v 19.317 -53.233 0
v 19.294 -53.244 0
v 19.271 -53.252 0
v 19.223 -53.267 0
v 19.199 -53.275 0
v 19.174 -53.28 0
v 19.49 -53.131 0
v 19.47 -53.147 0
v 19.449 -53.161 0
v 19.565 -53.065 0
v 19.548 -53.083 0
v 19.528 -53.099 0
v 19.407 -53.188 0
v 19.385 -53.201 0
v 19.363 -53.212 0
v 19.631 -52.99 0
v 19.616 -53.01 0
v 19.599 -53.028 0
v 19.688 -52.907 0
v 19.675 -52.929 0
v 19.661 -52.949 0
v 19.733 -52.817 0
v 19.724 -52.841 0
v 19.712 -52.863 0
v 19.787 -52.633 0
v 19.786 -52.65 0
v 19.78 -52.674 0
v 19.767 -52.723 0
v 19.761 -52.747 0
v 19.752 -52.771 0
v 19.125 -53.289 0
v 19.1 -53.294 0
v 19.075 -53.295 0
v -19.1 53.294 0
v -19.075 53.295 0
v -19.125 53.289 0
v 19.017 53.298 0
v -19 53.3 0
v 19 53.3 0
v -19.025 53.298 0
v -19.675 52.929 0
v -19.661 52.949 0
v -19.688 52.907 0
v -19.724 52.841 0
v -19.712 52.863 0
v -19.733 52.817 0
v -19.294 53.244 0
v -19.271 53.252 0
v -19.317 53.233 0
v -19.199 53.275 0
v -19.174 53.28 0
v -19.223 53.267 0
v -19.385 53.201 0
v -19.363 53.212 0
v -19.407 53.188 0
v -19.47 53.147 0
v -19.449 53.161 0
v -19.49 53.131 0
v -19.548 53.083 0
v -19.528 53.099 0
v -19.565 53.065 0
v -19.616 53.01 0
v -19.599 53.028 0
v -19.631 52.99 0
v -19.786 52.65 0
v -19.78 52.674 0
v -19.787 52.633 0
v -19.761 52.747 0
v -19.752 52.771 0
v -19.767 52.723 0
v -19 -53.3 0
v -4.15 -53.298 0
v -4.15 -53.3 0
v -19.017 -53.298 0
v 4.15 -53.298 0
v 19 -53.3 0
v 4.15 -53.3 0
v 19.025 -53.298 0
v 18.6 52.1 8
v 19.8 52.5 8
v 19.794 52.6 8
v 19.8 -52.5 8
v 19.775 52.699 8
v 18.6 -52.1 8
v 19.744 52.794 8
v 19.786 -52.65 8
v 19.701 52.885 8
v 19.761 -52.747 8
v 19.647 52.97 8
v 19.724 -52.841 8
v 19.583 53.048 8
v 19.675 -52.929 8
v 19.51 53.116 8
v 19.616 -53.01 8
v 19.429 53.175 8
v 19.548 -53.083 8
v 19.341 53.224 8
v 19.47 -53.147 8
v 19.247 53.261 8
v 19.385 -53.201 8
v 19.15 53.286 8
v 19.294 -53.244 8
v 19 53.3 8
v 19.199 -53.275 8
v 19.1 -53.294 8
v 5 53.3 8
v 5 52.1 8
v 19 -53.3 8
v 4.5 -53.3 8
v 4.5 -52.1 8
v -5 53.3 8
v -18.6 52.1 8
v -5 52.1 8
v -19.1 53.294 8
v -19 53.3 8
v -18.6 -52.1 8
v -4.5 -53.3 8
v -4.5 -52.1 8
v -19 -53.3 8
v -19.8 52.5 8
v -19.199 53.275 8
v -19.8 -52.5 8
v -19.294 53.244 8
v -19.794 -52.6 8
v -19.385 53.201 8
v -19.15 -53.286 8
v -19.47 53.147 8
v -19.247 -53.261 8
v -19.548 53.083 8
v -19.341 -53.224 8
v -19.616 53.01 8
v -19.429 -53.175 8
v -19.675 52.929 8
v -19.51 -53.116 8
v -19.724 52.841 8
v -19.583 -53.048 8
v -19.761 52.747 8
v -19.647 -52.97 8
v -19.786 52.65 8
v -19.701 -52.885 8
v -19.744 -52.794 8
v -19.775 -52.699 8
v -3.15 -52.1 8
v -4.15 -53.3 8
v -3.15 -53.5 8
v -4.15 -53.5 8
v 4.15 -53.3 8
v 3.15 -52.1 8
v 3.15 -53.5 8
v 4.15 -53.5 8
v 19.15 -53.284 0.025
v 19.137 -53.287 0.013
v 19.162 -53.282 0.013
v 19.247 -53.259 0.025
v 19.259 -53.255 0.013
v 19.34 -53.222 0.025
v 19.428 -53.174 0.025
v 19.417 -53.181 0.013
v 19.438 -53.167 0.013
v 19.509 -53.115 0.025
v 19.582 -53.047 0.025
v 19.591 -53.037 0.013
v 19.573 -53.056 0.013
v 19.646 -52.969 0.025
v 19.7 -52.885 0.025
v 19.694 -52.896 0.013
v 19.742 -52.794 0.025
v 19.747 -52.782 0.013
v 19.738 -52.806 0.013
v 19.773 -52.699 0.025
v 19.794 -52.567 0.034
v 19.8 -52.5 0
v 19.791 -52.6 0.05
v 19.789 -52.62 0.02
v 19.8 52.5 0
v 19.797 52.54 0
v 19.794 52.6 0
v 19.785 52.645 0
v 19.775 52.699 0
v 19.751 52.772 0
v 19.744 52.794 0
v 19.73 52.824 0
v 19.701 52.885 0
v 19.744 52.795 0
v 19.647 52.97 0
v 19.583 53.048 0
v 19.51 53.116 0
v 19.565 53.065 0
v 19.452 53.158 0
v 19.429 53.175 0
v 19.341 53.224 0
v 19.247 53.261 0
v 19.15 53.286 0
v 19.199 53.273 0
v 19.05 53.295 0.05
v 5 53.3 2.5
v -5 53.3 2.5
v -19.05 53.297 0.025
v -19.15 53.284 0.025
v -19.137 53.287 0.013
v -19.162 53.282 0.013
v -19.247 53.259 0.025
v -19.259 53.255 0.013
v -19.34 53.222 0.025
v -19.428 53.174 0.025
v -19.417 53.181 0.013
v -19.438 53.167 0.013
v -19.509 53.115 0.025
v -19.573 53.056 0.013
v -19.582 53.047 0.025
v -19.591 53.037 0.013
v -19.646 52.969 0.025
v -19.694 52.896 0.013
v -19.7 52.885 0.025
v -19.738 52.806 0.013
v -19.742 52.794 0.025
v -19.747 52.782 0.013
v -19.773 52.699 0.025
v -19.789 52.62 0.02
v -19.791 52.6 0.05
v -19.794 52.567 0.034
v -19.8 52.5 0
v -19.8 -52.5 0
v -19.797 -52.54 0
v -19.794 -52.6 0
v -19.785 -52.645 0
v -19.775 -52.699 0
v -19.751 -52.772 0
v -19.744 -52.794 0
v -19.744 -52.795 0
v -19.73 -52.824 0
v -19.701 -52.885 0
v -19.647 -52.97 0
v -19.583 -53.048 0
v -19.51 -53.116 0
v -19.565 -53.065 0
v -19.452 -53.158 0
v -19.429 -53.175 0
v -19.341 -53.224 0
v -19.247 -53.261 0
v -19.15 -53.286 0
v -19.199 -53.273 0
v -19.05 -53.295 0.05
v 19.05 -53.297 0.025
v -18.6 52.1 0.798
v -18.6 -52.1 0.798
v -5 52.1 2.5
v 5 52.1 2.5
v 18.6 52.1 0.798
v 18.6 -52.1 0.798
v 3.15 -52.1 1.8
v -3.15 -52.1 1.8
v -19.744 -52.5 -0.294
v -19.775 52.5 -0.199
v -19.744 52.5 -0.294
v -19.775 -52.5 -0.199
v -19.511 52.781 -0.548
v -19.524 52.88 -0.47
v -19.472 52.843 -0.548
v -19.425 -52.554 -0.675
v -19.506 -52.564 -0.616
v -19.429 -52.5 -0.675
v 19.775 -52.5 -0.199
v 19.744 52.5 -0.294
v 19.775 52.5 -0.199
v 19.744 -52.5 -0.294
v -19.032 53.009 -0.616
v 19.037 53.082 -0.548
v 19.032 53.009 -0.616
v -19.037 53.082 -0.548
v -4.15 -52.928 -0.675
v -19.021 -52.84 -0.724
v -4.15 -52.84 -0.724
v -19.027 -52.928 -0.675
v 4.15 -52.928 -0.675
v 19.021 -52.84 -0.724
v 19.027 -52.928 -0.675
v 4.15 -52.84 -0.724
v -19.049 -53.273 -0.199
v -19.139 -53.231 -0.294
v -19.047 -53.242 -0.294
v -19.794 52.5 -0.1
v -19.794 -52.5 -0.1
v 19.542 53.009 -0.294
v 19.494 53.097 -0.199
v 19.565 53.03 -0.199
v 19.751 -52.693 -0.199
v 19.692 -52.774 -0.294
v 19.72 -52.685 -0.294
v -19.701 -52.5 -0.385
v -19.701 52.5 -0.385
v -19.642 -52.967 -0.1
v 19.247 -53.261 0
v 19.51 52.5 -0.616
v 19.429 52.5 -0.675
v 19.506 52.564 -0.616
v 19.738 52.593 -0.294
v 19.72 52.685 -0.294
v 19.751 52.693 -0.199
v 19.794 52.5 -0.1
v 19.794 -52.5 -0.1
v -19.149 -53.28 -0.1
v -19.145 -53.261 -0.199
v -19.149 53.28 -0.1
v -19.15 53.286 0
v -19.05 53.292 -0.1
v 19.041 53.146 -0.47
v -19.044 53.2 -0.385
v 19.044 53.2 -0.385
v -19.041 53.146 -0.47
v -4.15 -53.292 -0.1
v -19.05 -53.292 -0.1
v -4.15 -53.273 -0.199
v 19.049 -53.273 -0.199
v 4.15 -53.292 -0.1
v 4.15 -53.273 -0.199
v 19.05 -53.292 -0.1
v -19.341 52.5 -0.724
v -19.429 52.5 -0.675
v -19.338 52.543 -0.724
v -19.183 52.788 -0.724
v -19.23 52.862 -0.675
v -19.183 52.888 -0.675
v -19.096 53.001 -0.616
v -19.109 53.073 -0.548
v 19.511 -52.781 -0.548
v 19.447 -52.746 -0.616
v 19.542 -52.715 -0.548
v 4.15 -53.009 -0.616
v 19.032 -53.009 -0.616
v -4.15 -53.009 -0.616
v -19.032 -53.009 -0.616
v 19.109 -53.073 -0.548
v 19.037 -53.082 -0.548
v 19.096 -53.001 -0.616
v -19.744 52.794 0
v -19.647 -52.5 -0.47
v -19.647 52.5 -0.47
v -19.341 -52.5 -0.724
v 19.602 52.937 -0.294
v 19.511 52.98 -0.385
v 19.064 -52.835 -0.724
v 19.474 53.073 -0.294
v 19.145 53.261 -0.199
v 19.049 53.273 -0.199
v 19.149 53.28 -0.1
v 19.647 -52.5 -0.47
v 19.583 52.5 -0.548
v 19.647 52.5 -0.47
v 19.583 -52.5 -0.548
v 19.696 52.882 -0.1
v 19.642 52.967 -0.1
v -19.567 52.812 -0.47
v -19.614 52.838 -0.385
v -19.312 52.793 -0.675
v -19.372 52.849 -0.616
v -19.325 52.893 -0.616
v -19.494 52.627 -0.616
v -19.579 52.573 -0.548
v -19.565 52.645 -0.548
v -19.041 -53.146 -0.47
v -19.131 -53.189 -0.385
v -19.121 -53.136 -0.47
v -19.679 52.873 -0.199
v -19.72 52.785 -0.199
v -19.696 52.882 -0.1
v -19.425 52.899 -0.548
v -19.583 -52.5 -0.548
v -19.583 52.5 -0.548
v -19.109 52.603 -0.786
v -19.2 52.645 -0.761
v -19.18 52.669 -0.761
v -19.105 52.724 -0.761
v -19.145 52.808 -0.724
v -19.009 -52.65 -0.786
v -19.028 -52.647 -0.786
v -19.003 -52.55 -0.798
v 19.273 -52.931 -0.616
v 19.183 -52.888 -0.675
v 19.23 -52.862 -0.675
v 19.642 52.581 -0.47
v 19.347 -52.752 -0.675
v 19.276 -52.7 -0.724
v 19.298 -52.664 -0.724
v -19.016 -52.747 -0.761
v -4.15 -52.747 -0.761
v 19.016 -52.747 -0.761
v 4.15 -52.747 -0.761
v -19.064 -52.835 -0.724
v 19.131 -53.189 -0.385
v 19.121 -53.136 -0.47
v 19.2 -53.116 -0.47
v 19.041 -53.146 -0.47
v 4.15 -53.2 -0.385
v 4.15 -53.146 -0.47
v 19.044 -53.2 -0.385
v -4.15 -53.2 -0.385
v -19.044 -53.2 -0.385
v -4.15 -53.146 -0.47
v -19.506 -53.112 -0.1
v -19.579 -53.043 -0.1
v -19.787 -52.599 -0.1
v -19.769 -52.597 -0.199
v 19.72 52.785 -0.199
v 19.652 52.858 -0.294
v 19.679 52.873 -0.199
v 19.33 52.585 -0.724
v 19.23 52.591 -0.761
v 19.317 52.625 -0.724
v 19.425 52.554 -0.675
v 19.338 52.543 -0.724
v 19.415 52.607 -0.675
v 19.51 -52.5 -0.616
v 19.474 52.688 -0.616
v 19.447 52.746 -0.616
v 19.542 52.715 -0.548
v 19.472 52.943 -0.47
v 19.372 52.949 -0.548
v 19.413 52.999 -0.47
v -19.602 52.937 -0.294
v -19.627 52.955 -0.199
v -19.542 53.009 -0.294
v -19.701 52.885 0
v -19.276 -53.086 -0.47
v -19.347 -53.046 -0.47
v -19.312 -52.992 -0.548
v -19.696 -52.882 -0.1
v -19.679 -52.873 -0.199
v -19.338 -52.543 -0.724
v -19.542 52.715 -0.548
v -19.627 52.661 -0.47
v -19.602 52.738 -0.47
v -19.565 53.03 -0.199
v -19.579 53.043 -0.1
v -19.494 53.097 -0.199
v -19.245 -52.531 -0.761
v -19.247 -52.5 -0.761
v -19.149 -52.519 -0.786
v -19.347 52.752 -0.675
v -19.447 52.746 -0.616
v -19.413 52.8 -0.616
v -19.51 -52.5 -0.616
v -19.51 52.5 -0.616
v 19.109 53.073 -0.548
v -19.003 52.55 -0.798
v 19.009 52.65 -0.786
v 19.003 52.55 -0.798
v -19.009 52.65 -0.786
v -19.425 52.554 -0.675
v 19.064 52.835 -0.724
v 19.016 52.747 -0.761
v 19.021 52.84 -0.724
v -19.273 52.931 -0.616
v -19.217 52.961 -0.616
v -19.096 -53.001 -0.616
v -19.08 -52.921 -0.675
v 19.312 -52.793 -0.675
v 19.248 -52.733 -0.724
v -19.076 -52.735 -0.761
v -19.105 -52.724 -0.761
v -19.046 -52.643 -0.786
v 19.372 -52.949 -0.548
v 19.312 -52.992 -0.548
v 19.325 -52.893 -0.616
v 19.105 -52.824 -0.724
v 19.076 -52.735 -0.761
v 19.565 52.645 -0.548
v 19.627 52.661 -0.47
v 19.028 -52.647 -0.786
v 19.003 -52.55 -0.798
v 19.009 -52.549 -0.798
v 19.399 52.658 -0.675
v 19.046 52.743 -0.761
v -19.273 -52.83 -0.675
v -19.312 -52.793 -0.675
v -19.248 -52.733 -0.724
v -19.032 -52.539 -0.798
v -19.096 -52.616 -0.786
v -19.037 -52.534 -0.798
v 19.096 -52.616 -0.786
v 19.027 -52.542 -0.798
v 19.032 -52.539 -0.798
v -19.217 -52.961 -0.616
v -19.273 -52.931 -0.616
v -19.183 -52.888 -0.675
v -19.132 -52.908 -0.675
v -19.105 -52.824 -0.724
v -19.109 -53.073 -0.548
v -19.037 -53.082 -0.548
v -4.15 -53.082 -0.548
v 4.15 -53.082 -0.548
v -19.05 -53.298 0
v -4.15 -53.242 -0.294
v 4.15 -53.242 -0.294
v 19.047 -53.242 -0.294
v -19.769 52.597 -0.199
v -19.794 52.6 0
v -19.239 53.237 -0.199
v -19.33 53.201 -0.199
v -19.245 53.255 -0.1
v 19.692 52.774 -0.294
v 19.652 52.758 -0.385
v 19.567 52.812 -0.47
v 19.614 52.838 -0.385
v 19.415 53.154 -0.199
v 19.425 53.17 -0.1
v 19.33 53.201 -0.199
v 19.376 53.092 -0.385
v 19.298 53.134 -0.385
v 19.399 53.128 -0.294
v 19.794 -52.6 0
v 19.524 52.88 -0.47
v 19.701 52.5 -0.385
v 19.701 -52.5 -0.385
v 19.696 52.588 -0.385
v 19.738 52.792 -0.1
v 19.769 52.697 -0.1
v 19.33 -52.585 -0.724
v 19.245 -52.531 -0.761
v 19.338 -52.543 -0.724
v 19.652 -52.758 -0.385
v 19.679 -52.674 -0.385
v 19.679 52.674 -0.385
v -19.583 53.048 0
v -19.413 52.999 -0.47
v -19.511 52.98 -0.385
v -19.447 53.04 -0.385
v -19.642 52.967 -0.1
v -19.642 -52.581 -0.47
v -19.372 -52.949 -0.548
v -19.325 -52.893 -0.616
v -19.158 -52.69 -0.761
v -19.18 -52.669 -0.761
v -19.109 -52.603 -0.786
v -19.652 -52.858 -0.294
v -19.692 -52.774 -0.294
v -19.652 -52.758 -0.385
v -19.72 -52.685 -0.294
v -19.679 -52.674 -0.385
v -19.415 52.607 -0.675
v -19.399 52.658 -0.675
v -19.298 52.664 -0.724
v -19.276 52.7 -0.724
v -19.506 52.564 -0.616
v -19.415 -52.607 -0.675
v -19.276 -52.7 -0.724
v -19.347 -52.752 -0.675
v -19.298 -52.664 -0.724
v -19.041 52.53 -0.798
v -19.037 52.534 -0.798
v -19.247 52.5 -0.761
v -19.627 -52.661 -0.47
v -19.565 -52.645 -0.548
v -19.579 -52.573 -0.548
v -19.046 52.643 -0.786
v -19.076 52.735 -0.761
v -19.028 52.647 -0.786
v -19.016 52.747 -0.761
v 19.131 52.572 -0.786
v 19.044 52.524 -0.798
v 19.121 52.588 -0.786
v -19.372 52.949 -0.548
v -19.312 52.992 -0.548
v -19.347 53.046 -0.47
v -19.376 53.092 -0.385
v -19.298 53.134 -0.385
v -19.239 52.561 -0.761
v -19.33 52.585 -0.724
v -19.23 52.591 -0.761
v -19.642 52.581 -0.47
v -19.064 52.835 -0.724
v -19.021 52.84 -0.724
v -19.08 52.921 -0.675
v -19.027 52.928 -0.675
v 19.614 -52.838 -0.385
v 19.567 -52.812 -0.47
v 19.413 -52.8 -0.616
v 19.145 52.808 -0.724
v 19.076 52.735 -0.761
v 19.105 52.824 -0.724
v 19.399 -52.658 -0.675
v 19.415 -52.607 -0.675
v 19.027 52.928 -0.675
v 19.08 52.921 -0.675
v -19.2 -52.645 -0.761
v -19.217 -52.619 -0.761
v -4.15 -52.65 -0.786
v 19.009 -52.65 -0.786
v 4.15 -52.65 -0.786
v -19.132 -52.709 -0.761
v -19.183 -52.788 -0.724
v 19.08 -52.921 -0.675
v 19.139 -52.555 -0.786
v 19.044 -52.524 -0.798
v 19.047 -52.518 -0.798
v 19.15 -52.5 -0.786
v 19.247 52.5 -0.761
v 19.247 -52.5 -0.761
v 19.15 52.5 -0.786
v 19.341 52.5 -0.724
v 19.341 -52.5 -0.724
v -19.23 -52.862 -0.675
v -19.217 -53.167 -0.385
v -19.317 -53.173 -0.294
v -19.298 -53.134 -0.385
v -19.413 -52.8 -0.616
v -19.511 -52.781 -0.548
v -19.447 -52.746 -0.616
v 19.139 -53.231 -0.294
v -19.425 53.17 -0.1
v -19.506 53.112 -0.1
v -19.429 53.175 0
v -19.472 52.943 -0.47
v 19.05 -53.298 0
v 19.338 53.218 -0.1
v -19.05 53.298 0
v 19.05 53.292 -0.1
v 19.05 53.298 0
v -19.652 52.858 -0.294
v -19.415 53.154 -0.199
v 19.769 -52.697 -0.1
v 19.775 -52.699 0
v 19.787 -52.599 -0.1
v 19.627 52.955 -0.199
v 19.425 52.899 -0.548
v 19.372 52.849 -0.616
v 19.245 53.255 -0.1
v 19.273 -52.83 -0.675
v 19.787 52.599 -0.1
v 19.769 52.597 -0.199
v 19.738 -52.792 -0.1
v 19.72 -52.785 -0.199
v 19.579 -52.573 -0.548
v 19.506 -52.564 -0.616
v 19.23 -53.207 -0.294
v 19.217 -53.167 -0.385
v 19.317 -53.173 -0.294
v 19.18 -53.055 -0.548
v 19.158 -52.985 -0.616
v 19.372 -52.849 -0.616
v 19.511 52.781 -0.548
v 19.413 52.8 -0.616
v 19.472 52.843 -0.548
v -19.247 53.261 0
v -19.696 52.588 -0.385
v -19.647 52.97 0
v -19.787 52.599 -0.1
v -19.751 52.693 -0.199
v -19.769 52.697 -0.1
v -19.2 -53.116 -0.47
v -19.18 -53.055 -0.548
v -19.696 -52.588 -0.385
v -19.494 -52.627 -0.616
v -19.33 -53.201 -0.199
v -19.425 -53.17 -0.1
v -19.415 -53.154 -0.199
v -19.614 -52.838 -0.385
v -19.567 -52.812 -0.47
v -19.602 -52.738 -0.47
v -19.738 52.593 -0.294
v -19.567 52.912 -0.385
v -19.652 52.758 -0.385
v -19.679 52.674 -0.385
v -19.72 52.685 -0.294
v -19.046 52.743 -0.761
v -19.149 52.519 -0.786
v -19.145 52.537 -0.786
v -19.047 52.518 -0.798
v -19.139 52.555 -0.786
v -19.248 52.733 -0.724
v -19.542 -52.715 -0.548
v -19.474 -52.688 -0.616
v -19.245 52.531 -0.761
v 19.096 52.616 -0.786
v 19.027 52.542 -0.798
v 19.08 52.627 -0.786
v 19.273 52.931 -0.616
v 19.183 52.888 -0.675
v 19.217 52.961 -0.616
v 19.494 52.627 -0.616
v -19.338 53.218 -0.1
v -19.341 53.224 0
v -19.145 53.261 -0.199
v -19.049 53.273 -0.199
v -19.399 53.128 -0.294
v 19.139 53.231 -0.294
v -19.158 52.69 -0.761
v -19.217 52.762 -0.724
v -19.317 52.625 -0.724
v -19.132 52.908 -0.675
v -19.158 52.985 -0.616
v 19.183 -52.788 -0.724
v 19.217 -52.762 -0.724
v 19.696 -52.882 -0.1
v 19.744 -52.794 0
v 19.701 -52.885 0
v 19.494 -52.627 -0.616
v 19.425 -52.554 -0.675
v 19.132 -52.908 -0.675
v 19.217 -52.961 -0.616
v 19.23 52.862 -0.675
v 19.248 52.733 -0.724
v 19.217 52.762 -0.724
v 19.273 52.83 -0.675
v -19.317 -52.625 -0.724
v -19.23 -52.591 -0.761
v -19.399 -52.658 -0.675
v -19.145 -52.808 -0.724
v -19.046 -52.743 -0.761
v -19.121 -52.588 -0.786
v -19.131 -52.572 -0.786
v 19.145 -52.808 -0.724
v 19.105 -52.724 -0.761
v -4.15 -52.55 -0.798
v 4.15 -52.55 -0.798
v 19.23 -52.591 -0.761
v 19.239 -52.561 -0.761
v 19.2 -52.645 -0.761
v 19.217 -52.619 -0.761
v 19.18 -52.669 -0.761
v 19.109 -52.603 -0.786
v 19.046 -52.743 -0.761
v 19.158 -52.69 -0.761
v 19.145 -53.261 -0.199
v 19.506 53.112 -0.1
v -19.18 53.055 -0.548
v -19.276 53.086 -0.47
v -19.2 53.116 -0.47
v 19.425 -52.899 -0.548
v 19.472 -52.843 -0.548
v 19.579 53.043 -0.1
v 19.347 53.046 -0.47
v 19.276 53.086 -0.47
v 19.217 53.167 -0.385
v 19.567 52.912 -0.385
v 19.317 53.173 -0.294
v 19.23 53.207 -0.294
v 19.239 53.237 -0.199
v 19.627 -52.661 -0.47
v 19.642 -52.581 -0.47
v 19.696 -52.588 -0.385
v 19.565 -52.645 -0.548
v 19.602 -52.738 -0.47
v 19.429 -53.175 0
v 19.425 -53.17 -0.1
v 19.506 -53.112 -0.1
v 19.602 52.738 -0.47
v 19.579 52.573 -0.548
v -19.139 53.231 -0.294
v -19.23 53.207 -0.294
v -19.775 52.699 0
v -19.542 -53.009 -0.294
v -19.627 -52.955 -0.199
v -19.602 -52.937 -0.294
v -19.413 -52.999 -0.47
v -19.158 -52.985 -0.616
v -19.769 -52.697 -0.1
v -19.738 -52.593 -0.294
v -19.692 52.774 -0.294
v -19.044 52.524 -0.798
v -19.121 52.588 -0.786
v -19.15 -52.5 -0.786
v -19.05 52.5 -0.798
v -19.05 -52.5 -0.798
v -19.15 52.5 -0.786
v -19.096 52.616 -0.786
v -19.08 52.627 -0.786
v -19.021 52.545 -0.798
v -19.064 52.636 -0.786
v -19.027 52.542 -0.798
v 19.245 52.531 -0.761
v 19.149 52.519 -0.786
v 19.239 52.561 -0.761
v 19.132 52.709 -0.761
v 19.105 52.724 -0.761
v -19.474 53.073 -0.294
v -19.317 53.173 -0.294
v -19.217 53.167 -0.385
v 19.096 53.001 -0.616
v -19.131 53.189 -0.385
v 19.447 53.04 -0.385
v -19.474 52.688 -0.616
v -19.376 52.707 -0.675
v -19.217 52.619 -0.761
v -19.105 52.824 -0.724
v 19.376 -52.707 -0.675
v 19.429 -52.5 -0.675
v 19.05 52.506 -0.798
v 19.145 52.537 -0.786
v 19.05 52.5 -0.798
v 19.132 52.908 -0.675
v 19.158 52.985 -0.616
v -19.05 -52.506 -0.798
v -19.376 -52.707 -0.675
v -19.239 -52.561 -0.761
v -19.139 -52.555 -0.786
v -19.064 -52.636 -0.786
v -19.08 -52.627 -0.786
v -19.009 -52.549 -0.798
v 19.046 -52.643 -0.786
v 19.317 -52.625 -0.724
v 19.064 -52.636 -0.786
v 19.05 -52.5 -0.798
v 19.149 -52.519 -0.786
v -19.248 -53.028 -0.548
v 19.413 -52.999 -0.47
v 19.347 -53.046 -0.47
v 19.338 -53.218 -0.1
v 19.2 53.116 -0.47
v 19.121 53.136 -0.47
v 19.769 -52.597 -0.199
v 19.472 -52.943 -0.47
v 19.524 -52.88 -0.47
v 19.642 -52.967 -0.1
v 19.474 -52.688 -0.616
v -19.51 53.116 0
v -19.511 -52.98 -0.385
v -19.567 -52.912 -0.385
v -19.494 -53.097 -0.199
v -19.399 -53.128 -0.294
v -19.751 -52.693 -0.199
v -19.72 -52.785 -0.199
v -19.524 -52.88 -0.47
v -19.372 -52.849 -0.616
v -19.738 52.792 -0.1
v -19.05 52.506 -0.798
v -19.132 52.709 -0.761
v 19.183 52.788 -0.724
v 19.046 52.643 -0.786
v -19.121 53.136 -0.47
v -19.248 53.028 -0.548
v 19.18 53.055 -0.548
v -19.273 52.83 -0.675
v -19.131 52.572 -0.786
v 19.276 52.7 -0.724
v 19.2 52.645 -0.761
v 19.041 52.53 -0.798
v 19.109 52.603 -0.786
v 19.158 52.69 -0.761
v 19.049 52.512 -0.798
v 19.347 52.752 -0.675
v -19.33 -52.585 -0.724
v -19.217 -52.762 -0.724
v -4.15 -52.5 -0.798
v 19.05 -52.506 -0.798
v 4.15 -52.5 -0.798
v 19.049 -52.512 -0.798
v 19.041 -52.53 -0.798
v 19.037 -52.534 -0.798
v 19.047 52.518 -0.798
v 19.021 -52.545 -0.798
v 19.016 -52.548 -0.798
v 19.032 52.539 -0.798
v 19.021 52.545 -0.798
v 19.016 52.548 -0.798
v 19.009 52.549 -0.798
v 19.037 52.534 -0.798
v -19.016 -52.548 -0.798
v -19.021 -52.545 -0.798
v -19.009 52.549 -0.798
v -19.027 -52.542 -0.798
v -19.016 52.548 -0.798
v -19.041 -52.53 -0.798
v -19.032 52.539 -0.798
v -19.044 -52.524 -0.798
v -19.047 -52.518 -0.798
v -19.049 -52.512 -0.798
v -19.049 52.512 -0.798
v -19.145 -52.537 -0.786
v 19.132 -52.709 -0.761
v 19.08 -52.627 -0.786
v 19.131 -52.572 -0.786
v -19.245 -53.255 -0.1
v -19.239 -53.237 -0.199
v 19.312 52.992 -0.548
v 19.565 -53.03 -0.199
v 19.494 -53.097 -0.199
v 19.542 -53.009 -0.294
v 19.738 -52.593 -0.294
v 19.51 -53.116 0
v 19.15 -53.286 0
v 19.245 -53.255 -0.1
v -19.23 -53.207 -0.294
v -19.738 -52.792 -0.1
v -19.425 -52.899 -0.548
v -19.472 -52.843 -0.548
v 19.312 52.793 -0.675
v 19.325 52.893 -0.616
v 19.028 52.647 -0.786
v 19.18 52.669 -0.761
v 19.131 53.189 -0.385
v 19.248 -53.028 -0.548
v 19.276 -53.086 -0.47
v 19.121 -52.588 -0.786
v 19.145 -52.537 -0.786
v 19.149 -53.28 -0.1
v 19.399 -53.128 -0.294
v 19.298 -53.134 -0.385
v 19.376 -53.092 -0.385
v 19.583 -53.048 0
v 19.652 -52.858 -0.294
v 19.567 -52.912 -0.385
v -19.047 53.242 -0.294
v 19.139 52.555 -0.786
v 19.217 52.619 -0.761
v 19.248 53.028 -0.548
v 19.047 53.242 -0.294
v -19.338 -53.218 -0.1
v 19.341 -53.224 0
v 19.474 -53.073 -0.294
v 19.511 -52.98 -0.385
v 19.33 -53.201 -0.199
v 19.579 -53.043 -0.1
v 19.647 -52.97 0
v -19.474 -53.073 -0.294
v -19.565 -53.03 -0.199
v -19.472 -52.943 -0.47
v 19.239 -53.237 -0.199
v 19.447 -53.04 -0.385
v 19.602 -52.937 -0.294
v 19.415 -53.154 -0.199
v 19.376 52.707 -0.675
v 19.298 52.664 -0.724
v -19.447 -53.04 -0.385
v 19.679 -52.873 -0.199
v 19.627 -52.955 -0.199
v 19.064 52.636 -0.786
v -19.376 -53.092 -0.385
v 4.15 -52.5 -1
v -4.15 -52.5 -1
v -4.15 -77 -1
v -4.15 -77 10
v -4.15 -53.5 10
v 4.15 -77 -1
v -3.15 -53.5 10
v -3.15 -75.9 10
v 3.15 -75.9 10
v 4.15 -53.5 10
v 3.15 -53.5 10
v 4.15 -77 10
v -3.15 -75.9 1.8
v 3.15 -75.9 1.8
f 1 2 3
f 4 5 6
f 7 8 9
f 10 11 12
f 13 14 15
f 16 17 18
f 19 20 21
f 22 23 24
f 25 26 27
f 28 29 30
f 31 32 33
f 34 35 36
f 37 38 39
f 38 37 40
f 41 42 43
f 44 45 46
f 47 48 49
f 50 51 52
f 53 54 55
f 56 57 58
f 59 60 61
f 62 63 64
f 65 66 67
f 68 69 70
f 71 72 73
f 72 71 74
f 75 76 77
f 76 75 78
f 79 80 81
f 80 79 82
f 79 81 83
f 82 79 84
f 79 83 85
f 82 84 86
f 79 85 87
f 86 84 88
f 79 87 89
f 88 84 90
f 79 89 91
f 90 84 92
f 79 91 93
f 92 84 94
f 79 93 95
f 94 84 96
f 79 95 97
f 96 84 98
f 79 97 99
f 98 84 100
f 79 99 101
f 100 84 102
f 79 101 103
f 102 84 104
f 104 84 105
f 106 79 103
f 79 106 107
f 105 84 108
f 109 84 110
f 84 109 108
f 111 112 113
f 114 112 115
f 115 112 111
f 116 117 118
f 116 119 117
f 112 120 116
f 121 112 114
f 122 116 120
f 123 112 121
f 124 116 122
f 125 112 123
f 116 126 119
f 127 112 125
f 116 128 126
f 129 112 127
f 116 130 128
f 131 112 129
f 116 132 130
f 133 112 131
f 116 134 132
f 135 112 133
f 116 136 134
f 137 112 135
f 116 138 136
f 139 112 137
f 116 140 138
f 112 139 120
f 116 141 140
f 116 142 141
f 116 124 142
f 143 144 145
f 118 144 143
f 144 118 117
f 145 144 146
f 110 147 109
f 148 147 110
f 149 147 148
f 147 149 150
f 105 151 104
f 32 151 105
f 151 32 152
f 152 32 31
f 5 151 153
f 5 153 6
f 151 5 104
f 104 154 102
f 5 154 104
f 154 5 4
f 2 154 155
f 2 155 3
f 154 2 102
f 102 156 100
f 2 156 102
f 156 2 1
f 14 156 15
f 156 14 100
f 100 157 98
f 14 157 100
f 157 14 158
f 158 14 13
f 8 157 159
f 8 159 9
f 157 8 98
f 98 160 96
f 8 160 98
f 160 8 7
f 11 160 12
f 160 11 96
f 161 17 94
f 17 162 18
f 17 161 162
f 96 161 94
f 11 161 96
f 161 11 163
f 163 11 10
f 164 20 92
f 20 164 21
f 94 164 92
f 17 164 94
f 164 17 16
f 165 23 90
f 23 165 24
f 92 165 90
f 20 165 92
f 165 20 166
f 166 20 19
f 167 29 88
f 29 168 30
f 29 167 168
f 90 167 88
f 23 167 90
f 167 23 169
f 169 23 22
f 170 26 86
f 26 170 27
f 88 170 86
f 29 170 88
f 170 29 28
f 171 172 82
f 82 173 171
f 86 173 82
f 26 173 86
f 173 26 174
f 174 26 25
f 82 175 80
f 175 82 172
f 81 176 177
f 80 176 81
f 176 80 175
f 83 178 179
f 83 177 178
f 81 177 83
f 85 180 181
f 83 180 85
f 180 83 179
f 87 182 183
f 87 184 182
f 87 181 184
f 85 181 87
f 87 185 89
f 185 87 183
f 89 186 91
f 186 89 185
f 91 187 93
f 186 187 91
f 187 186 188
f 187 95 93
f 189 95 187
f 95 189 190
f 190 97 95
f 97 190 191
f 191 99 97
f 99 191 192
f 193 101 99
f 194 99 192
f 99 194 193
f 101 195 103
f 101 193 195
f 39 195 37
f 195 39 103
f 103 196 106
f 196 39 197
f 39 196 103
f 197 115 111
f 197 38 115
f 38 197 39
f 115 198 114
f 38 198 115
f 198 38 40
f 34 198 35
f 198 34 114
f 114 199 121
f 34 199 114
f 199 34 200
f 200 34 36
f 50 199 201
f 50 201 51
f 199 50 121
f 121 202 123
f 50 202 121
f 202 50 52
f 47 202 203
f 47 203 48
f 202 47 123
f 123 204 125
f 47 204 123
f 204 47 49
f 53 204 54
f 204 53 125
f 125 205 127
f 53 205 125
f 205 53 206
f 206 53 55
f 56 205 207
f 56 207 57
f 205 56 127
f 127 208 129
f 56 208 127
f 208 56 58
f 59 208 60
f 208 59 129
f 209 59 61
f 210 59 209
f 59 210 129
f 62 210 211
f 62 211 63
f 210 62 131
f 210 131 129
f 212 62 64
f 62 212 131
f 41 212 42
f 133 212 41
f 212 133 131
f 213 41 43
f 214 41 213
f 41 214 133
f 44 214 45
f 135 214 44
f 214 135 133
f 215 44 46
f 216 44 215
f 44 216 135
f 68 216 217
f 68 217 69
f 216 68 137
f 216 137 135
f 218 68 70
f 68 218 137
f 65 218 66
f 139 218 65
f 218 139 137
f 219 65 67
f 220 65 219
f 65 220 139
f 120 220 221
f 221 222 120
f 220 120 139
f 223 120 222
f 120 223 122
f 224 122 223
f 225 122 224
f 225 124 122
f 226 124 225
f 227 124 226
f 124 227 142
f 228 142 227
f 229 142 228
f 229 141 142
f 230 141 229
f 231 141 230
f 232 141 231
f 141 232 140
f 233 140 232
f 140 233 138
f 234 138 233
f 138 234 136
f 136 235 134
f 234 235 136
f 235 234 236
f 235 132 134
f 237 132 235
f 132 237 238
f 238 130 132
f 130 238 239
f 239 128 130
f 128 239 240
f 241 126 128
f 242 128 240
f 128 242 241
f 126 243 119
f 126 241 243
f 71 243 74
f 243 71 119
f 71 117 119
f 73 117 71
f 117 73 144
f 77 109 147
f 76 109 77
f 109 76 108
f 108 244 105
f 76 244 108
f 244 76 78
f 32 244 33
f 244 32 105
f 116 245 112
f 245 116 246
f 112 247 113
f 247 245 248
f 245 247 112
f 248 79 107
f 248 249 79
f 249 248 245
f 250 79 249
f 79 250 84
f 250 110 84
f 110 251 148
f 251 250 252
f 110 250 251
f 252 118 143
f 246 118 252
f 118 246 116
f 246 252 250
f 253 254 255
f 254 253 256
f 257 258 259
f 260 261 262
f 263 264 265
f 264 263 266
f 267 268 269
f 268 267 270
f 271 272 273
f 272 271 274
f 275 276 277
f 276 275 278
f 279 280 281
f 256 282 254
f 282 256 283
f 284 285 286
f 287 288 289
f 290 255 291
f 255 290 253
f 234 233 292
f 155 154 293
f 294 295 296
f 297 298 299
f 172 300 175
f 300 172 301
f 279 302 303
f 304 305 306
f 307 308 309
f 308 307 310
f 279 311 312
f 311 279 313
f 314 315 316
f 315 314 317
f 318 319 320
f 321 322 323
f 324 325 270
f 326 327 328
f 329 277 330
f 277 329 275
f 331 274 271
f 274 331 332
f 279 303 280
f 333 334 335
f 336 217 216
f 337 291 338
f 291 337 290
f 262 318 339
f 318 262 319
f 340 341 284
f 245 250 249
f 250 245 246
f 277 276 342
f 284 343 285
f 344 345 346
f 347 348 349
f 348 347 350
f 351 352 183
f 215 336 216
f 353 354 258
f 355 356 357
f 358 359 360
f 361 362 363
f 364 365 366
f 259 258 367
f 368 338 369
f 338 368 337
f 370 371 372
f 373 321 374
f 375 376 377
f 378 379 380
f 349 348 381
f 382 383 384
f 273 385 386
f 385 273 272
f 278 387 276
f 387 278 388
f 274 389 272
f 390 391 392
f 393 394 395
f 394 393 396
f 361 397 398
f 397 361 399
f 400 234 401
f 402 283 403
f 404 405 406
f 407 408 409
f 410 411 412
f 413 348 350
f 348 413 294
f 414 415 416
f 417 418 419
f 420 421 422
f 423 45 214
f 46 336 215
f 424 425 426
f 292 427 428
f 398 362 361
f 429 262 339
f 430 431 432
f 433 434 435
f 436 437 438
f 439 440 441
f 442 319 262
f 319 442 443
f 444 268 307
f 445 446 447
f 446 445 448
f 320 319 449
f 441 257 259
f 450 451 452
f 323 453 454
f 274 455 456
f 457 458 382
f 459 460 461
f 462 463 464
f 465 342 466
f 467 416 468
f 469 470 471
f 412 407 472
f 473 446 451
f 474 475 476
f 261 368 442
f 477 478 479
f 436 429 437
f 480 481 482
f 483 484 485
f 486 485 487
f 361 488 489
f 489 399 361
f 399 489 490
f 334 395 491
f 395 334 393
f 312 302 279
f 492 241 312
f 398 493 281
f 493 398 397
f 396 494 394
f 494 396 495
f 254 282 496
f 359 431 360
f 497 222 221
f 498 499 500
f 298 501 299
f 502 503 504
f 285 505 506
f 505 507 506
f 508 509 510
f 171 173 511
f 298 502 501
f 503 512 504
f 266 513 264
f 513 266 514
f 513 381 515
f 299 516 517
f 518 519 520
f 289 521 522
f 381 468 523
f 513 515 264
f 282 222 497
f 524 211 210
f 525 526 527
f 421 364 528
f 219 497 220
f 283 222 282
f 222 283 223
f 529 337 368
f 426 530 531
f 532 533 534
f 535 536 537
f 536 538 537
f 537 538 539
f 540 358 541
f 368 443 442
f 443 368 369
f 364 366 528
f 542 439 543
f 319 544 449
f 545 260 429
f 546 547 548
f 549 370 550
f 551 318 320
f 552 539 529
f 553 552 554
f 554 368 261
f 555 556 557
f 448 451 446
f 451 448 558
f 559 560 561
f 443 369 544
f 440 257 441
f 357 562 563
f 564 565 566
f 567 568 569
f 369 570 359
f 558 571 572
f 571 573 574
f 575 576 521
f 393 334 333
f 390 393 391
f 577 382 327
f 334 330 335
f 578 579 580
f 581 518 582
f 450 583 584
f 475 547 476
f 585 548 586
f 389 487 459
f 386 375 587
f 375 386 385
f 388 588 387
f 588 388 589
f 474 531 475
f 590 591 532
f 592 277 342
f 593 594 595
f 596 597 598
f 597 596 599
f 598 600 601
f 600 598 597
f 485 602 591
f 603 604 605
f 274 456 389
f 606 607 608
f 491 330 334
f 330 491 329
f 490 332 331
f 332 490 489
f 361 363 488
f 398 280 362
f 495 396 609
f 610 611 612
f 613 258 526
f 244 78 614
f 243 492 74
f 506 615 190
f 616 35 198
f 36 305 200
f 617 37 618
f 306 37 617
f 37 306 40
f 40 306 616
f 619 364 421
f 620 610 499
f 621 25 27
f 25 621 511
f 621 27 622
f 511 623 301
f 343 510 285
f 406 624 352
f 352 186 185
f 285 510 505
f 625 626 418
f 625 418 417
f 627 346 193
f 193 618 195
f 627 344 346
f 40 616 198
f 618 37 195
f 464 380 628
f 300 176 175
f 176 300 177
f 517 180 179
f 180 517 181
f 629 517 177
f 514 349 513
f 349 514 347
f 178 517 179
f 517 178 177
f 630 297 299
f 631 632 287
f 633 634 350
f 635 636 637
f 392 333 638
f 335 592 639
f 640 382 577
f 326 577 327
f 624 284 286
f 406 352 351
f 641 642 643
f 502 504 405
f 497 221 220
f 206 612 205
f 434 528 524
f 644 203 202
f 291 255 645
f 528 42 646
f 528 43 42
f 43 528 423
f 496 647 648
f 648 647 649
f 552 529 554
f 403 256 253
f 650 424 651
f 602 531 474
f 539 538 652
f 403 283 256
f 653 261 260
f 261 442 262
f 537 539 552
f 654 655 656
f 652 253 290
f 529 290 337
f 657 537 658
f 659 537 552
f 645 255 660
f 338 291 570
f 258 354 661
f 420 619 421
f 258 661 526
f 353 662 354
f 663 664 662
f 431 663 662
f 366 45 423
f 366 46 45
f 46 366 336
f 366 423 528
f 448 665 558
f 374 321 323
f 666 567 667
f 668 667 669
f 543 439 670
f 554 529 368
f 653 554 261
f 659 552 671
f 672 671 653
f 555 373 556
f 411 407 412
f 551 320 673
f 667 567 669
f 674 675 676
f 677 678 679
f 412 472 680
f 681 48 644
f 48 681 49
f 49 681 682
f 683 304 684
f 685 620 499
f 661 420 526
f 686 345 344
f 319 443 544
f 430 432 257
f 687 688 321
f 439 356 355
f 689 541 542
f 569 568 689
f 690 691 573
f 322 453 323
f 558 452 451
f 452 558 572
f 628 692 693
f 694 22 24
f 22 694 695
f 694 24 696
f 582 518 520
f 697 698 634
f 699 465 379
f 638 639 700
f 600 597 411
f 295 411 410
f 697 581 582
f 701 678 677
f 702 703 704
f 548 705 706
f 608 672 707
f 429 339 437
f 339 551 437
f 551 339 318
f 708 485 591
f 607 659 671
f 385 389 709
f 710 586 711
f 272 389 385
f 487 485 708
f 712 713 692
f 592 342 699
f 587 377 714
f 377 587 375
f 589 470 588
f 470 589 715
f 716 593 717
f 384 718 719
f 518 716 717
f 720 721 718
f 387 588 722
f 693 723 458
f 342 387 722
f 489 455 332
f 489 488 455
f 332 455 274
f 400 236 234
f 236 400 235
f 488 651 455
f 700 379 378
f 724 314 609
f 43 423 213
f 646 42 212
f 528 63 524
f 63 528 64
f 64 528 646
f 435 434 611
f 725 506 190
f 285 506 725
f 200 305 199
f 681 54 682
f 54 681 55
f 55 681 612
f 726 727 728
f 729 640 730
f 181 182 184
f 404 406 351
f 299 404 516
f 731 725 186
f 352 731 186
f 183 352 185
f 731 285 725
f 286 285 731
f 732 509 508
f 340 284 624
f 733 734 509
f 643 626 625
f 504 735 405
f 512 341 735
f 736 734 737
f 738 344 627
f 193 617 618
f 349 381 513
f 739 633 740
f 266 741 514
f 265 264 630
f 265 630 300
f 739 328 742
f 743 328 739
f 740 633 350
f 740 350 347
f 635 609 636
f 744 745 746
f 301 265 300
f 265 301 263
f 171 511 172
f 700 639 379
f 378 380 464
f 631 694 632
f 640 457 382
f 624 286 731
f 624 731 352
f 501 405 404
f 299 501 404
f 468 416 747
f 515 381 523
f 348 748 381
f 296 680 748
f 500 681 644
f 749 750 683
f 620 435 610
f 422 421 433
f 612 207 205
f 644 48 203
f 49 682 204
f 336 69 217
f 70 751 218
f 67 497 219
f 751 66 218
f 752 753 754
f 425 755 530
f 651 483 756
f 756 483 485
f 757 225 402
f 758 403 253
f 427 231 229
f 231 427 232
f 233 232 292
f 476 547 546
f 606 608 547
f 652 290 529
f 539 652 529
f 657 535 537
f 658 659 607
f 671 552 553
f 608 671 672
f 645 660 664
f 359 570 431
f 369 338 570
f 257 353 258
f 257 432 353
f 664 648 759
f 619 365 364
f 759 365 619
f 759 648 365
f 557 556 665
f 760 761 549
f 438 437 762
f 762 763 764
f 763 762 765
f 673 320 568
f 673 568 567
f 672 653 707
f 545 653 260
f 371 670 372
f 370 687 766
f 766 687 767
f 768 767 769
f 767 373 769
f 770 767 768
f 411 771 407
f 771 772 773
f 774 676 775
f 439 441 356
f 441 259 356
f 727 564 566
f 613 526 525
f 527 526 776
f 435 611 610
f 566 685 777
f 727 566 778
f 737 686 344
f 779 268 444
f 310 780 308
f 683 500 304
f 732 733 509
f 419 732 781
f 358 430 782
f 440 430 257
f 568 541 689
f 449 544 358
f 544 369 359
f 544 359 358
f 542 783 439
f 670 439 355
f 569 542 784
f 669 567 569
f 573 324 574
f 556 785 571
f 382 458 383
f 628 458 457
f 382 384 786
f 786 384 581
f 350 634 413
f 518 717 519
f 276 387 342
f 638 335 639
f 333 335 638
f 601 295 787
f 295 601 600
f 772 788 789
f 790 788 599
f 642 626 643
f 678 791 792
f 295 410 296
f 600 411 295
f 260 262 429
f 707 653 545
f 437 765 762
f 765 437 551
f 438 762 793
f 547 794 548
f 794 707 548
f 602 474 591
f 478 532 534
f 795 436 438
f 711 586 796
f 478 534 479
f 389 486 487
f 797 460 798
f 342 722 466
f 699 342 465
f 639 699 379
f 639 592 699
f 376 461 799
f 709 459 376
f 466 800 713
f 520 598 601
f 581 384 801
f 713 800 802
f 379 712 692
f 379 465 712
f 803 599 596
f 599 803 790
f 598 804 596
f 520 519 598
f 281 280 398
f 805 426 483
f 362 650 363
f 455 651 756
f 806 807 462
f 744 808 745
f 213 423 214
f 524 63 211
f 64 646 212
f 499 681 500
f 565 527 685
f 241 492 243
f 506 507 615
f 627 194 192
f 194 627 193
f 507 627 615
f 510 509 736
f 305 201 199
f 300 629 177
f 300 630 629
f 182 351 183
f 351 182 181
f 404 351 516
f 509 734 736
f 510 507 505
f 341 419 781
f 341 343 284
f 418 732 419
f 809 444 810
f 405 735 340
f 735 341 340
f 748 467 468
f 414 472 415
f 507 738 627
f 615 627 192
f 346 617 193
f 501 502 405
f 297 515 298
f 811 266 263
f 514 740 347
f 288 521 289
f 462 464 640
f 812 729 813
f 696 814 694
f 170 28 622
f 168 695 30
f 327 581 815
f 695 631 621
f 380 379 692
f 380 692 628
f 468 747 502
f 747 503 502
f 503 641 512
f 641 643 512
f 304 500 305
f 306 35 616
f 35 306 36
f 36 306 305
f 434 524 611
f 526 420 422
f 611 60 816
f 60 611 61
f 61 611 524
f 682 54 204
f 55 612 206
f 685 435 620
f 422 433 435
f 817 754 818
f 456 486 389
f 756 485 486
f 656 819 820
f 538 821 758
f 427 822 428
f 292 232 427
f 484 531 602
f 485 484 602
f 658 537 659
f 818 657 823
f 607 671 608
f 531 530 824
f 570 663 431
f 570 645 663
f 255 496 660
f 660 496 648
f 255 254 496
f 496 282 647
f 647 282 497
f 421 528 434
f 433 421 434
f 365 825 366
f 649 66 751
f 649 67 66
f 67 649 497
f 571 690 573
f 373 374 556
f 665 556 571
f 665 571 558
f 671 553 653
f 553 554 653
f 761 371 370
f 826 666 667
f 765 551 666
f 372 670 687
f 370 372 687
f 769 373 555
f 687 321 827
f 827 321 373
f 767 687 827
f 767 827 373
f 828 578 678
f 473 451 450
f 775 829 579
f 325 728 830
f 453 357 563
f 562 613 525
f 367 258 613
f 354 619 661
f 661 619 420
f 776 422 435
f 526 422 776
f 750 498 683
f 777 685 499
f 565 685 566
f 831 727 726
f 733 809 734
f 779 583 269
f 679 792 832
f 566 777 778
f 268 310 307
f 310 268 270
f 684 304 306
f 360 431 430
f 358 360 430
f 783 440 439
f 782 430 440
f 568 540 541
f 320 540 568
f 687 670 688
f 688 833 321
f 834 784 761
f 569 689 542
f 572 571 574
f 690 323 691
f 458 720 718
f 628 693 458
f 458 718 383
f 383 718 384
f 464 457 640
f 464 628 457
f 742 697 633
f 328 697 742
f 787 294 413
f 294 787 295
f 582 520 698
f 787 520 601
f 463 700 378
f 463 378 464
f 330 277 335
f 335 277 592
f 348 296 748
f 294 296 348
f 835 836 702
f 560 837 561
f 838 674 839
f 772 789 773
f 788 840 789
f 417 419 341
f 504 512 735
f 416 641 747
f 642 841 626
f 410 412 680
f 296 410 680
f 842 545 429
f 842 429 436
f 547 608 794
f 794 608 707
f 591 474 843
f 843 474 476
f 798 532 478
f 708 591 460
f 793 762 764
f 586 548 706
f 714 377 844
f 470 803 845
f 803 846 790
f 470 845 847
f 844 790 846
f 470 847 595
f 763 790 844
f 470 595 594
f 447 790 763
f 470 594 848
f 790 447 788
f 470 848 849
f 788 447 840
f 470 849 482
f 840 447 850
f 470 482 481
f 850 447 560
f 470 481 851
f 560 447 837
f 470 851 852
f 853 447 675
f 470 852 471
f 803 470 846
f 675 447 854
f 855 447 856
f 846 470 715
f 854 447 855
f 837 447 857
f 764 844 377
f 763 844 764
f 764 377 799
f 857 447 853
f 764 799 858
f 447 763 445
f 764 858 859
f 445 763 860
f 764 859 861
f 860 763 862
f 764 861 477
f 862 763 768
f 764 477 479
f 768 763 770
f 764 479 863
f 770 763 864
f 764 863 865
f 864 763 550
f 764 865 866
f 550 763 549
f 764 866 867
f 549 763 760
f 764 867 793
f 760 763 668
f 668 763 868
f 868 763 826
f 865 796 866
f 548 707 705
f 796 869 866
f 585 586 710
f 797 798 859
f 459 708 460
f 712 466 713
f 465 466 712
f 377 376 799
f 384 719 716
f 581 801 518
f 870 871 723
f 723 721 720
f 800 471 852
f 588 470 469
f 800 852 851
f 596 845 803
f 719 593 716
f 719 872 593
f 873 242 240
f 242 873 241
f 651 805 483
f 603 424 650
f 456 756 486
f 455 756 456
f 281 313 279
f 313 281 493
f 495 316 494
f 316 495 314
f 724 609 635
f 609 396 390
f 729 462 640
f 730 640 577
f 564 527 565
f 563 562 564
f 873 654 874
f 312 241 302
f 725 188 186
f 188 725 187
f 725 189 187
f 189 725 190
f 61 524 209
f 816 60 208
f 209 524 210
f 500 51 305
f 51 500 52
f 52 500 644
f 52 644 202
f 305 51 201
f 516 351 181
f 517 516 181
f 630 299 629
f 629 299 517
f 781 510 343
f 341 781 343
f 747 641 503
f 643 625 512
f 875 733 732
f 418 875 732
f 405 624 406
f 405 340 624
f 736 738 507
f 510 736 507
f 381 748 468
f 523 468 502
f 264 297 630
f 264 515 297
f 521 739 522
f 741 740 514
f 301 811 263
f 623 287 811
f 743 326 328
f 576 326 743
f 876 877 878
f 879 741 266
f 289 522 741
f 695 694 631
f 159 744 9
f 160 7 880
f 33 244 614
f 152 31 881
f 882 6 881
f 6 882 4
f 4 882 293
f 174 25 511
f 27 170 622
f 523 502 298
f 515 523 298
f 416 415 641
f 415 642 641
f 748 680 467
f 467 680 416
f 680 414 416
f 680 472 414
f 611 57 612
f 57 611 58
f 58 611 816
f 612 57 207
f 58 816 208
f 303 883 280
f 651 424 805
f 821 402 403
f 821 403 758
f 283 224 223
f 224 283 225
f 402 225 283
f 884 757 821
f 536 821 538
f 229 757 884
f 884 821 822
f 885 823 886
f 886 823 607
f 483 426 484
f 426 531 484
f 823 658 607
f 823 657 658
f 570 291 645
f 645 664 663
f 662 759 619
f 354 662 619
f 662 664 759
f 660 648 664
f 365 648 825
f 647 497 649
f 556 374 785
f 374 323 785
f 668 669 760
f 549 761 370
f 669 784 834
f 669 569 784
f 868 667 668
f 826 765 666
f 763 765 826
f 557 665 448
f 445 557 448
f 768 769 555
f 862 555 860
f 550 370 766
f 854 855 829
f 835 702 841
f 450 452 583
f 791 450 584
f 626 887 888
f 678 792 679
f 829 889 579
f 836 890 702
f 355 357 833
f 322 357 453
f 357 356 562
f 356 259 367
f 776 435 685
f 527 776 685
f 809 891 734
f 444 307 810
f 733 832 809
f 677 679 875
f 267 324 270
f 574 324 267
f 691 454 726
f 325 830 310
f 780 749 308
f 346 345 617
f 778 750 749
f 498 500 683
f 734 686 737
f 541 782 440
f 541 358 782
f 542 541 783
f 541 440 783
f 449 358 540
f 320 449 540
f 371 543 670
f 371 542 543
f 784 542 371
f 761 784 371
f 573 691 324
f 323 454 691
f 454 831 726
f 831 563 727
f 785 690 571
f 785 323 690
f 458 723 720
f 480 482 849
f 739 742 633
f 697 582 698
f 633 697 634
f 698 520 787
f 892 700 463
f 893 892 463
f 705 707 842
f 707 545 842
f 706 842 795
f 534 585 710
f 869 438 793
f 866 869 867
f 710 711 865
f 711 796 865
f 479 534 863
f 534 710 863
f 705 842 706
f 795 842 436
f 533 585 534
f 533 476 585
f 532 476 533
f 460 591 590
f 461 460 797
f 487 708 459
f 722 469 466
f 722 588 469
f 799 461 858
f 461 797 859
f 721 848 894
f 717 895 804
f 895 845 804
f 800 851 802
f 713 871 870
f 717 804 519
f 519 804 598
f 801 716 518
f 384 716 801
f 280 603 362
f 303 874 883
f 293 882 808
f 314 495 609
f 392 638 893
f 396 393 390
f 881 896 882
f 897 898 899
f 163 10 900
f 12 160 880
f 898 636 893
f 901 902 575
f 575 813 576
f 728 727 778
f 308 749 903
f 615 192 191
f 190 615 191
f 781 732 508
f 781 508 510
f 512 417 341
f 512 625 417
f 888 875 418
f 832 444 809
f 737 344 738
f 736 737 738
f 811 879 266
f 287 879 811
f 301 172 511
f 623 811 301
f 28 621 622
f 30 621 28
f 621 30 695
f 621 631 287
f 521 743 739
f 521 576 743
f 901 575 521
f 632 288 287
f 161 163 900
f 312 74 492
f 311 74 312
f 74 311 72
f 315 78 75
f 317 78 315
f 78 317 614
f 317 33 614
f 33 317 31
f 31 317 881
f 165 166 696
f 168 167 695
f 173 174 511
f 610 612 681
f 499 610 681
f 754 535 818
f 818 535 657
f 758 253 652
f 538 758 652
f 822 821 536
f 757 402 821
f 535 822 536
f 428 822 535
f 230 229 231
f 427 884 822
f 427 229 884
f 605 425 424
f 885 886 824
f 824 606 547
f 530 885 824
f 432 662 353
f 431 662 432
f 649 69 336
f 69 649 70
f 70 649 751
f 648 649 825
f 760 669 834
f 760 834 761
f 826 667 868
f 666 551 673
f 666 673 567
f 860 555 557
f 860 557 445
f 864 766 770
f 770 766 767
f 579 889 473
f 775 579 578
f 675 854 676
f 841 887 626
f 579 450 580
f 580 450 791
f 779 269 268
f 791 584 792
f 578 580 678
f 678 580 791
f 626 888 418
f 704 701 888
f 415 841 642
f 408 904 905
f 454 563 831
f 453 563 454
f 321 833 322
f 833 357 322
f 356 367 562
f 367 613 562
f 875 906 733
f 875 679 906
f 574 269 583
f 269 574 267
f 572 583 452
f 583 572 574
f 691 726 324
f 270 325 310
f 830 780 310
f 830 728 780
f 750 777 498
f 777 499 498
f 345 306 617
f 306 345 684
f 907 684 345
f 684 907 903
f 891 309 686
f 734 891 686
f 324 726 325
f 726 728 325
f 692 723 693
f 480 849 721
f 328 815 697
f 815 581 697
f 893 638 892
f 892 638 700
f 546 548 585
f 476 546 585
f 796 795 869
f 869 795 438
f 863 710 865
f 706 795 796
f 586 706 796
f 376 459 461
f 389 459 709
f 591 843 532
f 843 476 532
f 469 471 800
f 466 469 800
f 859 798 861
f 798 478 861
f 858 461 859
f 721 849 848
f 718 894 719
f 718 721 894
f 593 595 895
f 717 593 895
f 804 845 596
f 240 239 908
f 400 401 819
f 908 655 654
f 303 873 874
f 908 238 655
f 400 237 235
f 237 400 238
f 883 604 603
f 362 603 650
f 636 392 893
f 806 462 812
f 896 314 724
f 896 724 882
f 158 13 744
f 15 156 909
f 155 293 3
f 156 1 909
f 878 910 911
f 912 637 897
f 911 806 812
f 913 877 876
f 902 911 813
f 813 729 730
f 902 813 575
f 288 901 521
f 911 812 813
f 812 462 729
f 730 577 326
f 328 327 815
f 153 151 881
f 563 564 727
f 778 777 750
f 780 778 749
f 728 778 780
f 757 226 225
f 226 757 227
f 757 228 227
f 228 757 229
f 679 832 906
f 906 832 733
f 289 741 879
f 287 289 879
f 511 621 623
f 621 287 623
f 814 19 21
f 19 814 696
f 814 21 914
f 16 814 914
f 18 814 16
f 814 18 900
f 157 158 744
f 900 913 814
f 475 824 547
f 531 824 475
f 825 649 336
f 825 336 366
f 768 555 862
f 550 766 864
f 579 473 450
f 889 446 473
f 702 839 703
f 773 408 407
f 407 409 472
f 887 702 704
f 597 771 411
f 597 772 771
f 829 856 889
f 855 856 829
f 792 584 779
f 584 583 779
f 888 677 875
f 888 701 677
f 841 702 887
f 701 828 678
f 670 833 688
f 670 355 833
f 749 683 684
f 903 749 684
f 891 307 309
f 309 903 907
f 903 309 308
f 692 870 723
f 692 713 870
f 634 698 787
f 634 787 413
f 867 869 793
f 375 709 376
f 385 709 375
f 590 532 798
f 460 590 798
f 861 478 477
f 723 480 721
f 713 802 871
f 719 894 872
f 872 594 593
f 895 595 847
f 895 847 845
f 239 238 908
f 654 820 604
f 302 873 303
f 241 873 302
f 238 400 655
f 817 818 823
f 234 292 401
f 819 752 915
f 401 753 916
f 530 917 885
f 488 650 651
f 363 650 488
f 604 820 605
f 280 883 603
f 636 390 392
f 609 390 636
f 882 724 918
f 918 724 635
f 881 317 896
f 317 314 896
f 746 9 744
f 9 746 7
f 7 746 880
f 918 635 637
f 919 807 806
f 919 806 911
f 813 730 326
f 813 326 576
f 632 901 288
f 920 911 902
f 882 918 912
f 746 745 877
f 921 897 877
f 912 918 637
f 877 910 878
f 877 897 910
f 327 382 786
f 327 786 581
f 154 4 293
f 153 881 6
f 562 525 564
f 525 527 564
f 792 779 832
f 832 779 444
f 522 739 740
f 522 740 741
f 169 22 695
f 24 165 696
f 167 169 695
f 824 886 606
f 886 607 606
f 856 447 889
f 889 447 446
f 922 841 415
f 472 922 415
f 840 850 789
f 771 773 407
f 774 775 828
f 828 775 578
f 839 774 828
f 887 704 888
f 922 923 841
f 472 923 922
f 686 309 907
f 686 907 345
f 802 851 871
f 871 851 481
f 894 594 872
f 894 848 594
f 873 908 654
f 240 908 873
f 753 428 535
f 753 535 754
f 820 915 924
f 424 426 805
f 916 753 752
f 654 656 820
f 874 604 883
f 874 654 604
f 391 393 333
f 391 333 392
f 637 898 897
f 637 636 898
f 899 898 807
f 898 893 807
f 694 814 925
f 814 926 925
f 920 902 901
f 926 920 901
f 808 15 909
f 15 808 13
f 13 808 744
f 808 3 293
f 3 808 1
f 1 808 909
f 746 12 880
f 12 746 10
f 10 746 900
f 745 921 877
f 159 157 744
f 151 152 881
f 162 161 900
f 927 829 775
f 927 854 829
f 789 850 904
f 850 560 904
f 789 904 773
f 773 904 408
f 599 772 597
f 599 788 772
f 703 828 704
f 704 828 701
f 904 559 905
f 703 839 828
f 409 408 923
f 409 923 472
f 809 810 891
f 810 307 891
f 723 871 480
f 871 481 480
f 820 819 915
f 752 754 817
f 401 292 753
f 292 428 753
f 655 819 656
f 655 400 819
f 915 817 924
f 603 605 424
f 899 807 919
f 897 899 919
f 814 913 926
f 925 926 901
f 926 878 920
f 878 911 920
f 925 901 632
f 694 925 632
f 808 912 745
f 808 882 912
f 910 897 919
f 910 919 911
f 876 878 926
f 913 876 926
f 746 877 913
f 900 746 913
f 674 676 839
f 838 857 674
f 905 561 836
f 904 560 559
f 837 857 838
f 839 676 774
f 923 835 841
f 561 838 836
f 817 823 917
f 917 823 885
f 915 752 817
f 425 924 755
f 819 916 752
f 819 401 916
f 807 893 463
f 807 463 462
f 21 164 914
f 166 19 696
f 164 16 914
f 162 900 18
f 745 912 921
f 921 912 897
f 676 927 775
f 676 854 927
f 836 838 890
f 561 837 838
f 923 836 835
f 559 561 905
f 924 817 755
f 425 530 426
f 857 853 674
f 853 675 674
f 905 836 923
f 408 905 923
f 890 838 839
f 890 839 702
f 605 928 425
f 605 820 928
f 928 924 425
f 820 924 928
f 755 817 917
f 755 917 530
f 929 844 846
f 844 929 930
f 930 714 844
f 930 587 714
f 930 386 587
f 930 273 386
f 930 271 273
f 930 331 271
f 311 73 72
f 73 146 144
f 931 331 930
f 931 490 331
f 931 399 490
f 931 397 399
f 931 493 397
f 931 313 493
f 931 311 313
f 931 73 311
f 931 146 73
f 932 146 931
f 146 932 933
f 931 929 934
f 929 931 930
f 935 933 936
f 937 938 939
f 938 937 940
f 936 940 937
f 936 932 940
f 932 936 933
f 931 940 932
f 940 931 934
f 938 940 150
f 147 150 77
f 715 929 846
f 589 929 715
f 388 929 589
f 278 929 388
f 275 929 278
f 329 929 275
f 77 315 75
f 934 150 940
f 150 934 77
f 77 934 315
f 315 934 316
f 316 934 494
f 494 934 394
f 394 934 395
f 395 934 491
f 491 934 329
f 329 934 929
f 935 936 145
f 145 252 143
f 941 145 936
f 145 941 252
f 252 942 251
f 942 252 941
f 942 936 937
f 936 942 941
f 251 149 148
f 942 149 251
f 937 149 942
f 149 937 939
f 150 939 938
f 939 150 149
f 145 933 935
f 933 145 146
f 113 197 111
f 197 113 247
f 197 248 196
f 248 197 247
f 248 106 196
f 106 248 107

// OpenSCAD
$fn=50;
BOX_W = 38; // Box Width
BOX_L = 105;// Box Length
BOX_H = 8.0; // Box Height
CORNER_RADIUS = 0.8; // Radius of corners
WALL = 0.8;// Wall Thickness all sides

MIC_OUTSIDE_WIDTH=8.3;
MIC_OUTSIDE_HEIGHT=11.0;
MIC_INSIDE_WIDTH=6.3;
MIC_LENGTH=24.5;

CON_OUTSIDE=5;
CON_INSIDE=4;
CON_LENGTH=3;

MIC_OFFSET_X = 0;
MIC_OFFSET_Y = -34.5;
MIC_OFFSET_Z = -0.5;

VENT_OFFSET = -4.5;
VENT_L = 19.0;
VENT_R = -19.0;

module sq_vent(x, y, vent_offset) {
    translate([x, y, BOX_H + vent_offset]) {
        rotate([90, 0, 90]) {
            linear_extrude(2.5) square([2, 2], center=true);
        }
    }
}

module vent(x, y, vent_offset) {
    translate([x, y, BOX_H + vent_offset]) {
        rotate([90, 0, 90]) {
            cylinder(h=3.0, d=2.0, center=true);
        }
    }
}

difference() {
    union() {
        linear_extrude( BOX_H )
        difference(){
            offset(r=CORNER_RADIUS) square( [BOX_W, BOX_L], center=true );
            offset(r= CORNER_RADIUS - WALL) square([BOX_W-WALL, BOX_L-WALL], center=true );
        };
        coordinates = [ [0,0],[0,BOX_L],[BOX_W,BOX_L],[BOX_W,0] ];
        translate ( [-BOX_W/2, -BOX_L/2] )
            hull()
            for (i = coordinates)
            translate(i) sphere(CORNER_RADIUS);
            
        translate([MIC_OFFSET_X, MIC_OFFSET_Y, MIC_OFFSET_Z]){
            // mic box
            translate([0,-18.0,BOX_H-3])
            rotate([90,0,0])
            linear_extrude(MIC_LENGTH)square([MIC_OUTSIDE_WIDTH,MIC_OUTSIDE_HEIGHT], center=true);
        }
    }
    translate([MIC_OFFSET_X, MIC_OFFSET_Y, MIC_OFFSET_Z]){
        // inside mic channel
        translate([0,-13.8,BOX_H-0.2]) // inside
        rotate([90,0,0])
        linear_extrude(MIC_LENGTH+3.1) square([MIC_INSIDE_WIDTH,MIC_OUTSIDE_HEIGHT], center=true); 
        
        // mic lid clearance at mic box opening
        translate([0,-17,BOX_H+1.60])
        rotate([90,0,0])
        linear_extrude(2.0) square([9,2.2], center=true);   
    }
    // cable exit
    translate([0,54.0,BOX_H-2.5])
    rotate([90,0,0])
    #linear_extrude(3.0) square([10,6], center=true);
    /*
    // gas sensor vents
    vent(VENT_L, 29.0, VENT_OFFSET);
    vent(VENT_L, 21.0, VENT_OFFSET);
    vent(VENT_L, 13.0, VENT_OFFSET);
    vent(VENT_L, 5.0, VENT_OFFSET);
    vent(VENT_L, -3.0, VENT_OFFSET);
    vent(VENT_L, -11.0, VENT_OFFSET);
    
    vent(VENT_R, 29.0, VENT_OFFSET);
    vent(VENT_R, 21.0, VENT_OFFSET);
    vent(VENT_R, 13.0, VENT_OFFSET);
    vent(VENT_R, 5.0, VENT_OFFSET);
    vent(VENT_R, -3.0, VENT_OFFSET);
    vent(VENT_R, -11.0, VENT_OFFSET);
    */
}

/*
// save for archiving

module waterdrop() {
    difference(){
        // Main drop shape
        # cylinder(r1=0, r2=0.1875, h=0.375, center=false);
        
        // To subtract from the base to make it rounded like a waterdrop
        translate([0, 0, -0.05])
        sphere(r=0.1875);
    }
}

for(i=[0:2]){
    translate([i*0.5, 0, 0]){
        waterdrop();
    }
}
*/
